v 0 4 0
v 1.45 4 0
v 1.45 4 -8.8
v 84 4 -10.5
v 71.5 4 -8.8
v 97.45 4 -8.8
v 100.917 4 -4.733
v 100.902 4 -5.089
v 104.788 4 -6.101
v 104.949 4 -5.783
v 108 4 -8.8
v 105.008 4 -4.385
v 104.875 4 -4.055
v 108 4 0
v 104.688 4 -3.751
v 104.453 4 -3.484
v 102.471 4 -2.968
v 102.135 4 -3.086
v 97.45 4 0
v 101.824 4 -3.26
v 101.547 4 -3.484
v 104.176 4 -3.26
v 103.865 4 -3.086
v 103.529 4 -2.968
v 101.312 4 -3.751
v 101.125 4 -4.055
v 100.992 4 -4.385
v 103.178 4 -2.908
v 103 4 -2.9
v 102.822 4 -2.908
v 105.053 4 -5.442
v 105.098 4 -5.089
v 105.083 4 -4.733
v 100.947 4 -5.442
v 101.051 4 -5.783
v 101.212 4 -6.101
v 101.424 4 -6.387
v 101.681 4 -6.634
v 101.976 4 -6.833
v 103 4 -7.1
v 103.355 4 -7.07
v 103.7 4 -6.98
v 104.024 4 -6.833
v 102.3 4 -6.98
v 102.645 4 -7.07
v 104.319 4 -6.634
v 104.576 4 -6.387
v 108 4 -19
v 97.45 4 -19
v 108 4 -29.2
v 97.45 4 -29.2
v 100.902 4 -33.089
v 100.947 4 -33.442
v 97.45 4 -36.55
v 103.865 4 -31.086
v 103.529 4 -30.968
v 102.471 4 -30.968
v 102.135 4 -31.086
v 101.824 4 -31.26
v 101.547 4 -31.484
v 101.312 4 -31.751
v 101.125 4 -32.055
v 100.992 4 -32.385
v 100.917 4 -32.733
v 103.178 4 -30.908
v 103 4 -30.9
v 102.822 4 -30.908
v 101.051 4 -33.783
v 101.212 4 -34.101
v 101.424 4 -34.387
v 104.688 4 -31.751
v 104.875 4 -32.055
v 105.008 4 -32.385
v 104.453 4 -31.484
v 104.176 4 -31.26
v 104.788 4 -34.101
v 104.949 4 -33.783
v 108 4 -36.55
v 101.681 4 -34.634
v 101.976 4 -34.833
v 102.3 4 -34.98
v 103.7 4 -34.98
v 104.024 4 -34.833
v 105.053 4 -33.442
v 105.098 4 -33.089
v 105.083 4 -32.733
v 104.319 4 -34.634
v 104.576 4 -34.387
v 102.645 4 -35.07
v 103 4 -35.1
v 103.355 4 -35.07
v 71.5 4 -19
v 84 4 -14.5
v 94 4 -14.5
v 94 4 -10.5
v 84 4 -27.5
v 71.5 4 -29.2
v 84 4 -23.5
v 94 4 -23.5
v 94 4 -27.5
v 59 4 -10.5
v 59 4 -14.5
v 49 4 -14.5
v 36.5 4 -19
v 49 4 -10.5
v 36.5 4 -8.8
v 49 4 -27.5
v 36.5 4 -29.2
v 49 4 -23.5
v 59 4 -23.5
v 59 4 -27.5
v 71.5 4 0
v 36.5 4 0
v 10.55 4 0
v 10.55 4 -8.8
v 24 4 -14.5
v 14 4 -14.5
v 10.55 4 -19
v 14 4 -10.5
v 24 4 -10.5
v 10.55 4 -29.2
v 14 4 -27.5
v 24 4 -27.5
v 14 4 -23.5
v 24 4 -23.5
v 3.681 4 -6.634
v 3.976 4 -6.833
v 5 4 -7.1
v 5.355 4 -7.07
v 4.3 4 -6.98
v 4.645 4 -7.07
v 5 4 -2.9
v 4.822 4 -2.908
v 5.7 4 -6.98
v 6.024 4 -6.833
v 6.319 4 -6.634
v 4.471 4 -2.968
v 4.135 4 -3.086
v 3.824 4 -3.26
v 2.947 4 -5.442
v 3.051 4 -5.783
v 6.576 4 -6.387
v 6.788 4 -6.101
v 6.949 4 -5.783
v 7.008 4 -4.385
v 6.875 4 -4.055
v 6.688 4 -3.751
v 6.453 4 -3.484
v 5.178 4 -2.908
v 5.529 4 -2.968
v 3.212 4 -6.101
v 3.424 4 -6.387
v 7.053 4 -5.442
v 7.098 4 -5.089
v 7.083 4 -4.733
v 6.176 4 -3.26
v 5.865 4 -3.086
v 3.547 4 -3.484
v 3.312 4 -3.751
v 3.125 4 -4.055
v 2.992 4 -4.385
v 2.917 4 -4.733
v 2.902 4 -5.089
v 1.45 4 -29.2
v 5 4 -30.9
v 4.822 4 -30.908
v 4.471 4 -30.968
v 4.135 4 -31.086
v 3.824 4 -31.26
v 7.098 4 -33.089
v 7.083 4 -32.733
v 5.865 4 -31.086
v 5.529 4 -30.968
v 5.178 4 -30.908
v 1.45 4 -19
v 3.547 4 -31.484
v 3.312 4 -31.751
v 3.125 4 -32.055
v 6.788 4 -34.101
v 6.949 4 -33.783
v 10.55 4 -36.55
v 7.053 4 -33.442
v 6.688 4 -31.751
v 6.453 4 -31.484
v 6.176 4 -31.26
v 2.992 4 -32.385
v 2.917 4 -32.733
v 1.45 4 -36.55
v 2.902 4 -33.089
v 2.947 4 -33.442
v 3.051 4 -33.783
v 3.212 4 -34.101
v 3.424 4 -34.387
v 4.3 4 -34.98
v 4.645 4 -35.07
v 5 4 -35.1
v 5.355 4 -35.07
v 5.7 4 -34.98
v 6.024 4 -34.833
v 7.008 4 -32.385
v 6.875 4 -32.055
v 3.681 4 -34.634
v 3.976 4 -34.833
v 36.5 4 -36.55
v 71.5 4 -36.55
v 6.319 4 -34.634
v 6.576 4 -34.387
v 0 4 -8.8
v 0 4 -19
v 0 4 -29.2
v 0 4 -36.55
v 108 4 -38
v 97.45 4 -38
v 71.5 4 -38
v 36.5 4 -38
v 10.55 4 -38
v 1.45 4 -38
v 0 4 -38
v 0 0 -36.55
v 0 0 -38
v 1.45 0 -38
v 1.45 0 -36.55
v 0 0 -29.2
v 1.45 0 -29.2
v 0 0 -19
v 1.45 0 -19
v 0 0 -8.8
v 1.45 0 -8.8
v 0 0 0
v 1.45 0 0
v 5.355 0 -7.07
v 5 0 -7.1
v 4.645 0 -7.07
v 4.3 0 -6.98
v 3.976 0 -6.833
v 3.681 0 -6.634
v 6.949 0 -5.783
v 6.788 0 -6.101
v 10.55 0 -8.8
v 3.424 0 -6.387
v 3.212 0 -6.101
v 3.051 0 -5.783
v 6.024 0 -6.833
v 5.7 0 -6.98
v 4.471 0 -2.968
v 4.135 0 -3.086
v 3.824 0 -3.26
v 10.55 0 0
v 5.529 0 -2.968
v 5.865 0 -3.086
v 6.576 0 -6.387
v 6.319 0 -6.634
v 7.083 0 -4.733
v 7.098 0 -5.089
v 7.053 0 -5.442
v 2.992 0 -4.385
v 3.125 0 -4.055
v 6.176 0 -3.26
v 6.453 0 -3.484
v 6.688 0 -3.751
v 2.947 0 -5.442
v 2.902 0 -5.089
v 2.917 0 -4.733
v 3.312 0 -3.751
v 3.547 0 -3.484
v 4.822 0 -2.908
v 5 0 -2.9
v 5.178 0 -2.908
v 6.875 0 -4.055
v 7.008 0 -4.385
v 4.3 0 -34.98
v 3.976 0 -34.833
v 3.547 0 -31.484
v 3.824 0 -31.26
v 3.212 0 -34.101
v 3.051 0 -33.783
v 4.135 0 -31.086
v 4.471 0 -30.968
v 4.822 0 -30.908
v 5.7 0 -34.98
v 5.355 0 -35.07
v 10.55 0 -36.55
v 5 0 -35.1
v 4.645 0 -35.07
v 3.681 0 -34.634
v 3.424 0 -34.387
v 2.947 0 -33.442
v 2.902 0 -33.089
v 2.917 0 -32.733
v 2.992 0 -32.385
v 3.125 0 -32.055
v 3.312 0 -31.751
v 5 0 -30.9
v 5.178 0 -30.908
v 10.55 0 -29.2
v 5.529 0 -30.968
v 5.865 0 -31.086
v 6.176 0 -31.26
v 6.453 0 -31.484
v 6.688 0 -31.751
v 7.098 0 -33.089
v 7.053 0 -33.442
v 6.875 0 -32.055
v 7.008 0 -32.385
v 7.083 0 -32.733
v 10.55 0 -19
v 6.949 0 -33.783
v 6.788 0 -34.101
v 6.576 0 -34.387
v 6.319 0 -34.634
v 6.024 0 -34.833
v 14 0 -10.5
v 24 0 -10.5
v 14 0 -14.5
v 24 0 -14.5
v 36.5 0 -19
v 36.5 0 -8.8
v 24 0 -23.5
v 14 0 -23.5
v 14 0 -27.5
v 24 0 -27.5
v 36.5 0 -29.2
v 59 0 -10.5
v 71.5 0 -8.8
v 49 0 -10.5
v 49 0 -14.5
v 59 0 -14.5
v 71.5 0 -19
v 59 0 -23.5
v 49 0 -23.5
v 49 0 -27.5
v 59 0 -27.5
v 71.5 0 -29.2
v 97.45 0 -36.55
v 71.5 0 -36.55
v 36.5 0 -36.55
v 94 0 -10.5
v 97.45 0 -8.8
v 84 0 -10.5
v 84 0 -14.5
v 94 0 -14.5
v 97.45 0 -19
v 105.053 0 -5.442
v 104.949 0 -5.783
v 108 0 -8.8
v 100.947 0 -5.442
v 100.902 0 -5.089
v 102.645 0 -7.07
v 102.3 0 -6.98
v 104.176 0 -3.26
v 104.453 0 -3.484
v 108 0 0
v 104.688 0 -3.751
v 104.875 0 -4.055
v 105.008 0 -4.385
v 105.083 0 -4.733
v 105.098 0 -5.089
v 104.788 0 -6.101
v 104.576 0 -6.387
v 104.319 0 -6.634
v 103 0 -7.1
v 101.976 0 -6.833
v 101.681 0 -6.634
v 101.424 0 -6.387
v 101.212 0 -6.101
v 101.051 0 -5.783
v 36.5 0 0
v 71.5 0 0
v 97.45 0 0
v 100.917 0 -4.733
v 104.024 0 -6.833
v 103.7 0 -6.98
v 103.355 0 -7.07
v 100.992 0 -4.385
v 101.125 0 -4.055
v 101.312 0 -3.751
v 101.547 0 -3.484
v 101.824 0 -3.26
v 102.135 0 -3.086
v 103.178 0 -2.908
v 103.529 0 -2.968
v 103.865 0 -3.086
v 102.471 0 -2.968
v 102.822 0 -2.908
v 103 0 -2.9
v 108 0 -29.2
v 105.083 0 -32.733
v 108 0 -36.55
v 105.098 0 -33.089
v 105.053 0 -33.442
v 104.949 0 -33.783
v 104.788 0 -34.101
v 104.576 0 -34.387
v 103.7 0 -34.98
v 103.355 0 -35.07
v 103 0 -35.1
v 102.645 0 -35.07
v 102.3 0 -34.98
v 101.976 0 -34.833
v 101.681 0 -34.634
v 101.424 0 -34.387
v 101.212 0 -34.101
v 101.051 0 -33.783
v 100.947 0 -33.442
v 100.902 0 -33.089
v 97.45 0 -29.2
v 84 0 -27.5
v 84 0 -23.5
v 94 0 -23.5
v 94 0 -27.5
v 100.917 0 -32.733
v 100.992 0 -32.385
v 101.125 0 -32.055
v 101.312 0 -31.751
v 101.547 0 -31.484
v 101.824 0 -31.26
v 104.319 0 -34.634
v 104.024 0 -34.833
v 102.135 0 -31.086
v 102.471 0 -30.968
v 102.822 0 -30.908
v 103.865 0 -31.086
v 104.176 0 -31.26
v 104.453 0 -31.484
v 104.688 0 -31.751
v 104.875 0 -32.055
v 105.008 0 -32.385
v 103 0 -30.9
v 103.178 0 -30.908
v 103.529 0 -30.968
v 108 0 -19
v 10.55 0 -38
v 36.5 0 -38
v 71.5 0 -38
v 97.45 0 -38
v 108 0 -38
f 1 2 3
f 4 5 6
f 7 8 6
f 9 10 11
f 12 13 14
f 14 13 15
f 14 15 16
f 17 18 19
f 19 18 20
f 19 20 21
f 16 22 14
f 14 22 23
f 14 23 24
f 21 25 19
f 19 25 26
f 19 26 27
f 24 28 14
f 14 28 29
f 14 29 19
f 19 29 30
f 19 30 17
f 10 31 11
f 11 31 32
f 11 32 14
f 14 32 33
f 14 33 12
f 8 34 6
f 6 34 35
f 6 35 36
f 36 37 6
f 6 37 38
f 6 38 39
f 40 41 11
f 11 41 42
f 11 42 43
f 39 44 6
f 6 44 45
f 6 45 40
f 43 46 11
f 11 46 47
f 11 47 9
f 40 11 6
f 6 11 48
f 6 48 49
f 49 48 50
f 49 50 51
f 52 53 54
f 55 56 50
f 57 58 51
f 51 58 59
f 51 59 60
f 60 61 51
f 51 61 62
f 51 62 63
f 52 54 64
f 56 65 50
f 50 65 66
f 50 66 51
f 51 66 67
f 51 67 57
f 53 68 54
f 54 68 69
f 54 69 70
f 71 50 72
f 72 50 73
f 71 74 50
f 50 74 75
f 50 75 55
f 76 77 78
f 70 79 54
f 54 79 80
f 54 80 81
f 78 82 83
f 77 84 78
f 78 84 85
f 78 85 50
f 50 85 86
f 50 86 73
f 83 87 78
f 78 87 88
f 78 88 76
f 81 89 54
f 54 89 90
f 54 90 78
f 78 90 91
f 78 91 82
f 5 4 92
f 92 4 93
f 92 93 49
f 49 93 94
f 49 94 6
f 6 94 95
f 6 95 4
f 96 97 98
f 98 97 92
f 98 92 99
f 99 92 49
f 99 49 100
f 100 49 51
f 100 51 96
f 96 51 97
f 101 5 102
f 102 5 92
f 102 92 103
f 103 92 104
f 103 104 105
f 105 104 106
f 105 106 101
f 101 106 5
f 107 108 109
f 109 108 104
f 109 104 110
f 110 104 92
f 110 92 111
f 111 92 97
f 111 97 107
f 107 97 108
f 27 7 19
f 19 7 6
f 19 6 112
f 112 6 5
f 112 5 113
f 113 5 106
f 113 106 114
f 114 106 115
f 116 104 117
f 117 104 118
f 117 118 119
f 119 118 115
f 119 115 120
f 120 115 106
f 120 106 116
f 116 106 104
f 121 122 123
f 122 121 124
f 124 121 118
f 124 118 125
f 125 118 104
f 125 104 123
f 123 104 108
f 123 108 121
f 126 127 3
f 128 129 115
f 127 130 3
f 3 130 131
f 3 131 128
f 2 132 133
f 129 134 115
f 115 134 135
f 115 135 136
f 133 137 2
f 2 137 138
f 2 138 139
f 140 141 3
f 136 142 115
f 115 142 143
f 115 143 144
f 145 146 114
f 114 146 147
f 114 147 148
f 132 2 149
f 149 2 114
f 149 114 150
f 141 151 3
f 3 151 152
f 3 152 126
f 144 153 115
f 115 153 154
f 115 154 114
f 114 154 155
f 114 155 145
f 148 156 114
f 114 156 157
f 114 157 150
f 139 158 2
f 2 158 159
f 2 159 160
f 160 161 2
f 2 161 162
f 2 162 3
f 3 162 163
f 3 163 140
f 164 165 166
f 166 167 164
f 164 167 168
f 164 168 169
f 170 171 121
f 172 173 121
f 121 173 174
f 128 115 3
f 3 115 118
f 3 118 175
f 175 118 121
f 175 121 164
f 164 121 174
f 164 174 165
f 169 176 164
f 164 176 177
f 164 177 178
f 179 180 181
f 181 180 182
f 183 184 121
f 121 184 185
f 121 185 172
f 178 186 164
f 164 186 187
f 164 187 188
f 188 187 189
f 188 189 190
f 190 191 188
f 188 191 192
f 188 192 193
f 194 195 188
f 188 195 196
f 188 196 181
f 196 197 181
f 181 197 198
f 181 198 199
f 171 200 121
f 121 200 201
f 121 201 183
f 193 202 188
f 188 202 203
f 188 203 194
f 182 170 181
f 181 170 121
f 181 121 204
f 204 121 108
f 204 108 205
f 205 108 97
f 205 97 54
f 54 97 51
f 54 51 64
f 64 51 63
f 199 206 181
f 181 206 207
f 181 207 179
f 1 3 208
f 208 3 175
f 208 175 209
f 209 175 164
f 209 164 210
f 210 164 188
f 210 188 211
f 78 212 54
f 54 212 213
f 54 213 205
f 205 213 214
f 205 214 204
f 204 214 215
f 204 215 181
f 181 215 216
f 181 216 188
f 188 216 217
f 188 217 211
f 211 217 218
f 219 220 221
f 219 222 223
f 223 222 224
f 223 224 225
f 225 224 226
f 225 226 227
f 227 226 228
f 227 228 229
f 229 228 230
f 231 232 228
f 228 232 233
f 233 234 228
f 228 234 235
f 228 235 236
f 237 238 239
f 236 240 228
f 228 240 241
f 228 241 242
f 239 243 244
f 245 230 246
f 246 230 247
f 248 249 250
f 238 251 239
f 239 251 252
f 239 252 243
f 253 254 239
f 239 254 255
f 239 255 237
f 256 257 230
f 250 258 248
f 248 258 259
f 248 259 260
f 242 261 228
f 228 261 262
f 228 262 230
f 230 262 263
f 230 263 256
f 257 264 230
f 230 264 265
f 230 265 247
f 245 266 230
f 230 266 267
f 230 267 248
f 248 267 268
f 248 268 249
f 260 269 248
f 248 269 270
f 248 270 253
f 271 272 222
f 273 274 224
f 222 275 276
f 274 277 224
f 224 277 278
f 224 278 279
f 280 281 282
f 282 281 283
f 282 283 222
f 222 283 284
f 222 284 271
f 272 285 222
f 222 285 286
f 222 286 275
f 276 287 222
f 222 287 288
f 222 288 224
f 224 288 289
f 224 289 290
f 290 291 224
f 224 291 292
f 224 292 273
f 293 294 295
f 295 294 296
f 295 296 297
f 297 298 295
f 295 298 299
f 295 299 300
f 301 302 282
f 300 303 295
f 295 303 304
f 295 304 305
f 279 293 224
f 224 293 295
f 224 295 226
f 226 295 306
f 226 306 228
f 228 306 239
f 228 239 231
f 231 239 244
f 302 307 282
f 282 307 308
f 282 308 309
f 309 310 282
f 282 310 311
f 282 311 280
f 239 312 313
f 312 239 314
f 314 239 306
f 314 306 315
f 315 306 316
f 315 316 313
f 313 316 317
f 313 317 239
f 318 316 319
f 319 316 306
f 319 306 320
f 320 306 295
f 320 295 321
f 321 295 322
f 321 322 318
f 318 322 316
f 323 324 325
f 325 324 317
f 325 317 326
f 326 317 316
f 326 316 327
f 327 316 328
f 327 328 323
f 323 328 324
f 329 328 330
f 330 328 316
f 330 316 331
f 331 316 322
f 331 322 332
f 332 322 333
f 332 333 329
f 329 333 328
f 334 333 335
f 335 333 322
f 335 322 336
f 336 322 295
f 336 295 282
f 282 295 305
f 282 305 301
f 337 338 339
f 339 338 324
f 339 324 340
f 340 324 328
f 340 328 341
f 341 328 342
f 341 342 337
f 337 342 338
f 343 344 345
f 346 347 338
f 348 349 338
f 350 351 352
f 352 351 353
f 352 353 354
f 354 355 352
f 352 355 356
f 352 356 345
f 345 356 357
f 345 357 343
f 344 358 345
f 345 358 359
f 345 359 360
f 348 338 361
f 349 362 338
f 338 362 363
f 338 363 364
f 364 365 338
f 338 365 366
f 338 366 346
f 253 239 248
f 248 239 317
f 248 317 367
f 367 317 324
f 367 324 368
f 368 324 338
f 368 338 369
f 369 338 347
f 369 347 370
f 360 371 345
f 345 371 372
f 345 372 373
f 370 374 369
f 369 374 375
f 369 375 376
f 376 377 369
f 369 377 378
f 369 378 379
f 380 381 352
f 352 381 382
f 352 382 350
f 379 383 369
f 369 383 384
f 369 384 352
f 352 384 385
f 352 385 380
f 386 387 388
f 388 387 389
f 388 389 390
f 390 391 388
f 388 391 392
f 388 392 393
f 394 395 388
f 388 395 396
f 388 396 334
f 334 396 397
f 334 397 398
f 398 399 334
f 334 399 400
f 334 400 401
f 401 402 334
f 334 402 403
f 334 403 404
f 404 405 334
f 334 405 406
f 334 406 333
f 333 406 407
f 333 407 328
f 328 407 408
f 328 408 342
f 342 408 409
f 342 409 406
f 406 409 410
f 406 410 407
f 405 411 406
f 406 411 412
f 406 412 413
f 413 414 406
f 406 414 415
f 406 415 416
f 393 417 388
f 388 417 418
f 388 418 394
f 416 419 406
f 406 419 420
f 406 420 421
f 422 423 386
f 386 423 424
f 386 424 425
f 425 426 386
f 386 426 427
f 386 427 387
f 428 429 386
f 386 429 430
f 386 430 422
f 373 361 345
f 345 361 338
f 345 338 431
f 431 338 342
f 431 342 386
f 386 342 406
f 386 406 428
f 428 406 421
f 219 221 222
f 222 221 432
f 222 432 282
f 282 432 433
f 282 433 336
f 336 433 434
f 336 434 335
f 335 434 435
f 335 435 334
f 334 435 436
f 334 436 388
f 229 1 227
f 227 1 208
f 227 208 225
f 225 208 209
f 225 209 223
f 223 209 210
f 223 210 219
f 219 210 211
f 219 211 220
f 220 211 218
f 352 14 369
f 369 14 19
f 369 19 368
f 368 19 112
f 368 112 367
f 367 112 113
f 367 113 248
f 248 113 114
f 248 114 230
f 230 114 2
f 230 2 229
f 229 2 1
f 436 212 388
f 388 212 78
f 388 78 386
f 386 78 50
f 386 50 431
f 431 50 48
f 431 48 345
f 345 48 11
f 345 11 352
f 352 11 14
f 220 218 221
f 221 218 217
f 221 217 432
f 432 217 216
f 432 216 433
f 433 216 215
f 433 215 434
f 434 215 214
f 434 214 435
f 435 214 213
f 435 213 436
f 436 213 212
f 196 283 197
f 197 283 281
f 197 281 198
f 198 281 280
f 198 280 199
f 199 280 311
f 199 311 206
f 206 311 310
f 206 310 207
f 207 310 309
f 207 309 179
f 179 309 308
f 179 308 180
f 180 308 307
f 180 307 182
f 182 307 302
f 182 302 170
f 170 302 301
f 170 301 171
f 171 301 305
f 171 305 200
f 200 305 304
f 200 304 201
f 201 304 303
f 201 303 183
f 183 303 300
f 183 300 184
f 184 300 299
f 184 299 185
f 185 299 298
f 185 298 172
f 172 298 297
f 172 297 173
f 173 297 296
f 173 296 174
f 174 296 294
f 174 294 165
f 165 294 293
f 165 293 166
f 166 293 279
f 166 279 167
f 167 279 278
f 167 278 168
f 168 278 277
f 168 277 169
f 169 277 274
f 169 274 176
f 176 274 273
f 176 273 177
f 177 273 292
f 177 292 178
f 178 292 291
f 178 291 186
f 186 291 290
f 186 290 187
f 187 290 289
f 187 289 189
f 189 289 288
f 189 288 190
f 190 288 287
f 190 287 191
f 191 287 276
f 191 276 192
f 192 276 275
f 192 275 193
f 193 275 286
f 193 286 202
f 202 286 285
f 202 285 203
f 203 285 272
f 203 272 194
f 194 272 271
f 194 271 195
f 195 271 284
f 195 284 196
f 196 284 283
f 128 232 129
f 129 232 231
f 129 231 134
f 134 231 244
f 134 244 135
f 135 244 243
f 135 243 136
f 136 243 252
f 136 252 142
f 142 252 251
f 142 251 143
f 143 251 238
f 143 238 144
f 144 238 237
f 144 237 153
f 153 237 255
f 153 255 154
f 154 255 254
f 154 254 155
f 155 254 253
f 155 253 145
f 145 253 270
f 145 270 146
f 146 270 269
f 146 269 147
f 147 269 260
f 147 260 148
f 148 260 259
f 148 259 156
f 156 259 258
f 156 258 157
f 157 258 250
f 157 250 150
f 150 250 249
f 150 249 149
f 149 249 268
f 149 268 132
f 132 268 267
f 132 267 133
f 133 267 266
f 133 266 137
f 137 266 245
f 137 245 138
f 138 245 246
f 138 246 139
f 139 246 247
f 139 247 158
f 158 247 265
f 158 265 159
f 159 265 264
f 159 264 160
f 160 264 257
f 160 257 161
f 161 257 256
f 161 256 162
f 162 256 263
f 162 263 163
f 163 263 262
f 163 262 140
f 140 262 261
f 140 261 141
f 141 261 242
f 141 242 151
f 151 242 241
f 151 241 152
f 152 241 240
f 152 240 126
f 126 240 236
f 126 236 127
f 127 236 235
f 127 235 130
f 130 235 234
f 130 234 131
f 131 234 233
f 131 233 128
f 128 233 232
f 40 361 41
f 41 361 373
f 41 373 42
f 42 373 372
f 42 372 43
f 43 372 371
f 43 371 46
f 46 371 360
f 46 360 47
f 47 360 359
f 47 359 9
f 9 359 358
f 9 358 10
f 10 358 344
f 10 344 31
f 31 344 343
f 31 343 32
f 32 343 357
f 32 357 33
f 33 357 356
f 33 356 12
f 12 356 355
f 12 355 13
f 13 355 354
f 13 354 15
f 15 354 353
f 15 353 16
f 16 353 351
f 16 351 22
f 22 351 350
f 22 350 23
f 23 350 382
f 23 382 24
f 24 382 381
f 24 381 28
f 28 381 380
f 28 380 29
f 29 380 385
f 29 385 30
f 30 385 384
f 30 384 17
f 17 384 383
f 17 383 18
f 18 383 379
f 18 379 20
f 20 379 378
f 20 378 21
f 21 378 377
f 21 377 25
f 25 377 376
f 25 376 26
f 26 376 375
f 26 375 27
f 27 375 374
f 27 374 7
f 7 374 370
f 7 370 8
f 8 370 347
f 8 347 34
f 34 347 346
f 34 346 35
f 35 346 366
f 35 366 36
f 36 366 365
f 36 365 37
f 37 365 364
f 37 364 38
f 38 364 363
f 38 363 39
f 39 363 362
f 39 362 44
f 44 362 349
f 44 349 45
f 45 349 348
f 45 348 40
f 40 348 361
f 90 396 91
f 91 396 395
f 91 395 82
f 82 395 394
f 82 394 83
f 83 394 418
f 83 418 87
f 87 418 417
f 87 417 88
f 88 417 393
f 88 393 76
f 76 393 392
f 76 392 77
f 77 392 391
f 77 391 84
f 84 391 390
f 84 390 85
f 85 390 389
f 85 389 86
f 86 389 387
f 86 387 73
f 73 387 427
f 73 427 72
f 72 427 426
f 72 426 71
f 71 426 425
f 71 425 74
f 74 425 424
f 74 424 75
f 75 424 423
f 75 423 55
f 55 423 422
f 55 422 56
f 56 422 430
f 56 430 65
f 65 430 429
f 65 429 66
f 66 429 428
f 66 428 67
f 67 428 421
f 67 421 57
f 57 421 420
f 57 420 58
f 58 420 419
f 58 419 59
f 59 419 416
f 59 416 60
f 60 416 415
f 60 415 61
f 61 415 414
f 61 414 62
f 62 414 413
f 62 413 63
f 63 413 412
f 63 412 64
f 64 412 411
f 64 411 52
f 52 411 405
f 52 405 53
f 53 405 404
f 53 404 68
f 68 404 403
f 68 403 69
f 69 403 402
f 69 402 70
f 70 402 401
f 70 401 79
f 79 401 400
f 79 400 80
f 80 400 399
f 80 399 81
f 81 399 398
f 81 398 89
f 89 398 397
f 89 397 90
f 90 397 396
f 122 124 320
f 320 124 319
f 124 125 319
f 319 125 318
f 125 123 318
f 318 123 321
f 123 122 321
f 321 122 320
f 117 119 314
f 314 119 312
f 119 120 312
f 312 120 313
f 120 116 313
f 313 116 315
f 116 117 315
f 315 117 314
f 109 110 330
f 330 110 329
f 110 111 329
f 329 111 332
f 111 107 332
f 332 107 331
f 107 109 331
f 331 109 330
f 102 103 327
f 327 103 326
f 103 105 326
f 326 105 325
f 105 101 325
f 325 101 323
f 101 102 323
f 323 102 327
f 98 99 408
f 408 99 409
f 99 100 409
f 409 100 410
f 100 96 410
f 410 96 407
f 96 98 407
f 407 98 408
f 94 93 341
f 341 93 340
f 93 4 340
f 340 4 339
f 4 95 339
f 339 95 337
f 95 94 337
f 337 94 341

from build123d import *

# Parameters (mm, degrees)
SKETCH1_W           = 108
SKETCH1_H           = 38
SKETCH1_R           = 2.1
SKETCH1_W_2         = 10
SKETCH1_H_2         = 4
BOSS_EXTRUDE1_DEPTH = 4


with BuildPart() as part:
    # Sketch1 → Boss-Extrude1 (new body)
    with BuildSketch(Plane(origin=(0, 0, 0), x_dir=(1, 0, 0), z_dir=(0, 1, 0))):
        with Locations((54, 19)):
            Rectangle(SKETCH1_W, SKETCH1_H)
        with Locations(Location((5, 33, 0), (0, 0, 270))):
            Circle(SKETCH1_R, mode=Mode.SUBTRACT)
        with Locations(Location((5, 5, 0), (0, 0, 270))):
            Circle(SKETCH1_R, mode=Mode.SUBTRACT)
        with Locations(Location((103, 5, 0), (0, 0, 270))):
            Circle(SKETCH1_R, mode=Mode.SUBTRACT)
        with Locations(Location((103, 33, 0), (0, 0, 270))):
            Circle(SKETCH1_R, mode=Mode.SUBTRACT)
        with Locations((19, 12.5)):
            Rectangle(SKETCH1_W_2, SKETCH1_H_2, mode=Mode.SUBTRACT)
        with Locations((19, 25.5)):
            Rectangle(SKETCH1_W_2, SKETCH1_H_2, mode=Mode.SUBTRACT)
        with Locations((54, 25.5)):
            Rectangle(SKETCH1_W_2, SKETCH1_H_2, mode=Mode.SUBTRACT)
        with Locations((54, 12.5)):
            Rectangle(SKETCH1_W_2, SKETCH1_H_2, mode=Mode.SUBTRACT)
        with Locations((89, 25.5)):
            Rectangle(SKETCH1_W_2, SKETCH1_H_2, mode=Mode.SUBTRACT)
        with Locations((89, 12.5)):
            Rectangle(SKETCH1_W_2, SKETCH1_H_2, mode=Mode.SUBTRACT)
    extrude(amount=BOSS_EXTRUDE1_DEPTH)


solid = part.part
